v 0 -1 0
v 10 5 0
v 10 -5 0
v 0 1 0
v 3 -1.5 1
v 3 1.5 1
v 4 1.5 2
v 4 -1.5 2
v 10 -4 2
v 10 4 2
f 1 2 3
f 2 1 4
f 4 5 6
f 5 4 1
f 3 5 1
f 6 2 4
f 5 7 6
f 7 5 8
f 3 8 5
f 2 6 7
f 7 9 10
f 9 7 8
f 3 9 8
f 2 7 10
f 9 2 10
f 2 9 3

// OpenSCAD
module wing()
{

}

module cab()
{
	points =
	[
		[0,1,0],[0,-1,0],[10,-5,0],[10,5,0],
		[3,1.5,1],[3,-1.5,1],
		[4,1.5,2],[4,-1.5,2],
		[10,4,2],[10,-4,2],
	];
	faces = 
	[
		[0,1,2,3],
		[1,0,4,5],
		[1,5,2],
		[0,3,4],
		[5,4,6,7],
		[5,7,2],
		[6,4,3],
		[7,6,8,9],
		[7,9,2],
		[8,6,3],
		[3,2,9,8],
	];
	polyhedron(points,faces);
}

cab();
